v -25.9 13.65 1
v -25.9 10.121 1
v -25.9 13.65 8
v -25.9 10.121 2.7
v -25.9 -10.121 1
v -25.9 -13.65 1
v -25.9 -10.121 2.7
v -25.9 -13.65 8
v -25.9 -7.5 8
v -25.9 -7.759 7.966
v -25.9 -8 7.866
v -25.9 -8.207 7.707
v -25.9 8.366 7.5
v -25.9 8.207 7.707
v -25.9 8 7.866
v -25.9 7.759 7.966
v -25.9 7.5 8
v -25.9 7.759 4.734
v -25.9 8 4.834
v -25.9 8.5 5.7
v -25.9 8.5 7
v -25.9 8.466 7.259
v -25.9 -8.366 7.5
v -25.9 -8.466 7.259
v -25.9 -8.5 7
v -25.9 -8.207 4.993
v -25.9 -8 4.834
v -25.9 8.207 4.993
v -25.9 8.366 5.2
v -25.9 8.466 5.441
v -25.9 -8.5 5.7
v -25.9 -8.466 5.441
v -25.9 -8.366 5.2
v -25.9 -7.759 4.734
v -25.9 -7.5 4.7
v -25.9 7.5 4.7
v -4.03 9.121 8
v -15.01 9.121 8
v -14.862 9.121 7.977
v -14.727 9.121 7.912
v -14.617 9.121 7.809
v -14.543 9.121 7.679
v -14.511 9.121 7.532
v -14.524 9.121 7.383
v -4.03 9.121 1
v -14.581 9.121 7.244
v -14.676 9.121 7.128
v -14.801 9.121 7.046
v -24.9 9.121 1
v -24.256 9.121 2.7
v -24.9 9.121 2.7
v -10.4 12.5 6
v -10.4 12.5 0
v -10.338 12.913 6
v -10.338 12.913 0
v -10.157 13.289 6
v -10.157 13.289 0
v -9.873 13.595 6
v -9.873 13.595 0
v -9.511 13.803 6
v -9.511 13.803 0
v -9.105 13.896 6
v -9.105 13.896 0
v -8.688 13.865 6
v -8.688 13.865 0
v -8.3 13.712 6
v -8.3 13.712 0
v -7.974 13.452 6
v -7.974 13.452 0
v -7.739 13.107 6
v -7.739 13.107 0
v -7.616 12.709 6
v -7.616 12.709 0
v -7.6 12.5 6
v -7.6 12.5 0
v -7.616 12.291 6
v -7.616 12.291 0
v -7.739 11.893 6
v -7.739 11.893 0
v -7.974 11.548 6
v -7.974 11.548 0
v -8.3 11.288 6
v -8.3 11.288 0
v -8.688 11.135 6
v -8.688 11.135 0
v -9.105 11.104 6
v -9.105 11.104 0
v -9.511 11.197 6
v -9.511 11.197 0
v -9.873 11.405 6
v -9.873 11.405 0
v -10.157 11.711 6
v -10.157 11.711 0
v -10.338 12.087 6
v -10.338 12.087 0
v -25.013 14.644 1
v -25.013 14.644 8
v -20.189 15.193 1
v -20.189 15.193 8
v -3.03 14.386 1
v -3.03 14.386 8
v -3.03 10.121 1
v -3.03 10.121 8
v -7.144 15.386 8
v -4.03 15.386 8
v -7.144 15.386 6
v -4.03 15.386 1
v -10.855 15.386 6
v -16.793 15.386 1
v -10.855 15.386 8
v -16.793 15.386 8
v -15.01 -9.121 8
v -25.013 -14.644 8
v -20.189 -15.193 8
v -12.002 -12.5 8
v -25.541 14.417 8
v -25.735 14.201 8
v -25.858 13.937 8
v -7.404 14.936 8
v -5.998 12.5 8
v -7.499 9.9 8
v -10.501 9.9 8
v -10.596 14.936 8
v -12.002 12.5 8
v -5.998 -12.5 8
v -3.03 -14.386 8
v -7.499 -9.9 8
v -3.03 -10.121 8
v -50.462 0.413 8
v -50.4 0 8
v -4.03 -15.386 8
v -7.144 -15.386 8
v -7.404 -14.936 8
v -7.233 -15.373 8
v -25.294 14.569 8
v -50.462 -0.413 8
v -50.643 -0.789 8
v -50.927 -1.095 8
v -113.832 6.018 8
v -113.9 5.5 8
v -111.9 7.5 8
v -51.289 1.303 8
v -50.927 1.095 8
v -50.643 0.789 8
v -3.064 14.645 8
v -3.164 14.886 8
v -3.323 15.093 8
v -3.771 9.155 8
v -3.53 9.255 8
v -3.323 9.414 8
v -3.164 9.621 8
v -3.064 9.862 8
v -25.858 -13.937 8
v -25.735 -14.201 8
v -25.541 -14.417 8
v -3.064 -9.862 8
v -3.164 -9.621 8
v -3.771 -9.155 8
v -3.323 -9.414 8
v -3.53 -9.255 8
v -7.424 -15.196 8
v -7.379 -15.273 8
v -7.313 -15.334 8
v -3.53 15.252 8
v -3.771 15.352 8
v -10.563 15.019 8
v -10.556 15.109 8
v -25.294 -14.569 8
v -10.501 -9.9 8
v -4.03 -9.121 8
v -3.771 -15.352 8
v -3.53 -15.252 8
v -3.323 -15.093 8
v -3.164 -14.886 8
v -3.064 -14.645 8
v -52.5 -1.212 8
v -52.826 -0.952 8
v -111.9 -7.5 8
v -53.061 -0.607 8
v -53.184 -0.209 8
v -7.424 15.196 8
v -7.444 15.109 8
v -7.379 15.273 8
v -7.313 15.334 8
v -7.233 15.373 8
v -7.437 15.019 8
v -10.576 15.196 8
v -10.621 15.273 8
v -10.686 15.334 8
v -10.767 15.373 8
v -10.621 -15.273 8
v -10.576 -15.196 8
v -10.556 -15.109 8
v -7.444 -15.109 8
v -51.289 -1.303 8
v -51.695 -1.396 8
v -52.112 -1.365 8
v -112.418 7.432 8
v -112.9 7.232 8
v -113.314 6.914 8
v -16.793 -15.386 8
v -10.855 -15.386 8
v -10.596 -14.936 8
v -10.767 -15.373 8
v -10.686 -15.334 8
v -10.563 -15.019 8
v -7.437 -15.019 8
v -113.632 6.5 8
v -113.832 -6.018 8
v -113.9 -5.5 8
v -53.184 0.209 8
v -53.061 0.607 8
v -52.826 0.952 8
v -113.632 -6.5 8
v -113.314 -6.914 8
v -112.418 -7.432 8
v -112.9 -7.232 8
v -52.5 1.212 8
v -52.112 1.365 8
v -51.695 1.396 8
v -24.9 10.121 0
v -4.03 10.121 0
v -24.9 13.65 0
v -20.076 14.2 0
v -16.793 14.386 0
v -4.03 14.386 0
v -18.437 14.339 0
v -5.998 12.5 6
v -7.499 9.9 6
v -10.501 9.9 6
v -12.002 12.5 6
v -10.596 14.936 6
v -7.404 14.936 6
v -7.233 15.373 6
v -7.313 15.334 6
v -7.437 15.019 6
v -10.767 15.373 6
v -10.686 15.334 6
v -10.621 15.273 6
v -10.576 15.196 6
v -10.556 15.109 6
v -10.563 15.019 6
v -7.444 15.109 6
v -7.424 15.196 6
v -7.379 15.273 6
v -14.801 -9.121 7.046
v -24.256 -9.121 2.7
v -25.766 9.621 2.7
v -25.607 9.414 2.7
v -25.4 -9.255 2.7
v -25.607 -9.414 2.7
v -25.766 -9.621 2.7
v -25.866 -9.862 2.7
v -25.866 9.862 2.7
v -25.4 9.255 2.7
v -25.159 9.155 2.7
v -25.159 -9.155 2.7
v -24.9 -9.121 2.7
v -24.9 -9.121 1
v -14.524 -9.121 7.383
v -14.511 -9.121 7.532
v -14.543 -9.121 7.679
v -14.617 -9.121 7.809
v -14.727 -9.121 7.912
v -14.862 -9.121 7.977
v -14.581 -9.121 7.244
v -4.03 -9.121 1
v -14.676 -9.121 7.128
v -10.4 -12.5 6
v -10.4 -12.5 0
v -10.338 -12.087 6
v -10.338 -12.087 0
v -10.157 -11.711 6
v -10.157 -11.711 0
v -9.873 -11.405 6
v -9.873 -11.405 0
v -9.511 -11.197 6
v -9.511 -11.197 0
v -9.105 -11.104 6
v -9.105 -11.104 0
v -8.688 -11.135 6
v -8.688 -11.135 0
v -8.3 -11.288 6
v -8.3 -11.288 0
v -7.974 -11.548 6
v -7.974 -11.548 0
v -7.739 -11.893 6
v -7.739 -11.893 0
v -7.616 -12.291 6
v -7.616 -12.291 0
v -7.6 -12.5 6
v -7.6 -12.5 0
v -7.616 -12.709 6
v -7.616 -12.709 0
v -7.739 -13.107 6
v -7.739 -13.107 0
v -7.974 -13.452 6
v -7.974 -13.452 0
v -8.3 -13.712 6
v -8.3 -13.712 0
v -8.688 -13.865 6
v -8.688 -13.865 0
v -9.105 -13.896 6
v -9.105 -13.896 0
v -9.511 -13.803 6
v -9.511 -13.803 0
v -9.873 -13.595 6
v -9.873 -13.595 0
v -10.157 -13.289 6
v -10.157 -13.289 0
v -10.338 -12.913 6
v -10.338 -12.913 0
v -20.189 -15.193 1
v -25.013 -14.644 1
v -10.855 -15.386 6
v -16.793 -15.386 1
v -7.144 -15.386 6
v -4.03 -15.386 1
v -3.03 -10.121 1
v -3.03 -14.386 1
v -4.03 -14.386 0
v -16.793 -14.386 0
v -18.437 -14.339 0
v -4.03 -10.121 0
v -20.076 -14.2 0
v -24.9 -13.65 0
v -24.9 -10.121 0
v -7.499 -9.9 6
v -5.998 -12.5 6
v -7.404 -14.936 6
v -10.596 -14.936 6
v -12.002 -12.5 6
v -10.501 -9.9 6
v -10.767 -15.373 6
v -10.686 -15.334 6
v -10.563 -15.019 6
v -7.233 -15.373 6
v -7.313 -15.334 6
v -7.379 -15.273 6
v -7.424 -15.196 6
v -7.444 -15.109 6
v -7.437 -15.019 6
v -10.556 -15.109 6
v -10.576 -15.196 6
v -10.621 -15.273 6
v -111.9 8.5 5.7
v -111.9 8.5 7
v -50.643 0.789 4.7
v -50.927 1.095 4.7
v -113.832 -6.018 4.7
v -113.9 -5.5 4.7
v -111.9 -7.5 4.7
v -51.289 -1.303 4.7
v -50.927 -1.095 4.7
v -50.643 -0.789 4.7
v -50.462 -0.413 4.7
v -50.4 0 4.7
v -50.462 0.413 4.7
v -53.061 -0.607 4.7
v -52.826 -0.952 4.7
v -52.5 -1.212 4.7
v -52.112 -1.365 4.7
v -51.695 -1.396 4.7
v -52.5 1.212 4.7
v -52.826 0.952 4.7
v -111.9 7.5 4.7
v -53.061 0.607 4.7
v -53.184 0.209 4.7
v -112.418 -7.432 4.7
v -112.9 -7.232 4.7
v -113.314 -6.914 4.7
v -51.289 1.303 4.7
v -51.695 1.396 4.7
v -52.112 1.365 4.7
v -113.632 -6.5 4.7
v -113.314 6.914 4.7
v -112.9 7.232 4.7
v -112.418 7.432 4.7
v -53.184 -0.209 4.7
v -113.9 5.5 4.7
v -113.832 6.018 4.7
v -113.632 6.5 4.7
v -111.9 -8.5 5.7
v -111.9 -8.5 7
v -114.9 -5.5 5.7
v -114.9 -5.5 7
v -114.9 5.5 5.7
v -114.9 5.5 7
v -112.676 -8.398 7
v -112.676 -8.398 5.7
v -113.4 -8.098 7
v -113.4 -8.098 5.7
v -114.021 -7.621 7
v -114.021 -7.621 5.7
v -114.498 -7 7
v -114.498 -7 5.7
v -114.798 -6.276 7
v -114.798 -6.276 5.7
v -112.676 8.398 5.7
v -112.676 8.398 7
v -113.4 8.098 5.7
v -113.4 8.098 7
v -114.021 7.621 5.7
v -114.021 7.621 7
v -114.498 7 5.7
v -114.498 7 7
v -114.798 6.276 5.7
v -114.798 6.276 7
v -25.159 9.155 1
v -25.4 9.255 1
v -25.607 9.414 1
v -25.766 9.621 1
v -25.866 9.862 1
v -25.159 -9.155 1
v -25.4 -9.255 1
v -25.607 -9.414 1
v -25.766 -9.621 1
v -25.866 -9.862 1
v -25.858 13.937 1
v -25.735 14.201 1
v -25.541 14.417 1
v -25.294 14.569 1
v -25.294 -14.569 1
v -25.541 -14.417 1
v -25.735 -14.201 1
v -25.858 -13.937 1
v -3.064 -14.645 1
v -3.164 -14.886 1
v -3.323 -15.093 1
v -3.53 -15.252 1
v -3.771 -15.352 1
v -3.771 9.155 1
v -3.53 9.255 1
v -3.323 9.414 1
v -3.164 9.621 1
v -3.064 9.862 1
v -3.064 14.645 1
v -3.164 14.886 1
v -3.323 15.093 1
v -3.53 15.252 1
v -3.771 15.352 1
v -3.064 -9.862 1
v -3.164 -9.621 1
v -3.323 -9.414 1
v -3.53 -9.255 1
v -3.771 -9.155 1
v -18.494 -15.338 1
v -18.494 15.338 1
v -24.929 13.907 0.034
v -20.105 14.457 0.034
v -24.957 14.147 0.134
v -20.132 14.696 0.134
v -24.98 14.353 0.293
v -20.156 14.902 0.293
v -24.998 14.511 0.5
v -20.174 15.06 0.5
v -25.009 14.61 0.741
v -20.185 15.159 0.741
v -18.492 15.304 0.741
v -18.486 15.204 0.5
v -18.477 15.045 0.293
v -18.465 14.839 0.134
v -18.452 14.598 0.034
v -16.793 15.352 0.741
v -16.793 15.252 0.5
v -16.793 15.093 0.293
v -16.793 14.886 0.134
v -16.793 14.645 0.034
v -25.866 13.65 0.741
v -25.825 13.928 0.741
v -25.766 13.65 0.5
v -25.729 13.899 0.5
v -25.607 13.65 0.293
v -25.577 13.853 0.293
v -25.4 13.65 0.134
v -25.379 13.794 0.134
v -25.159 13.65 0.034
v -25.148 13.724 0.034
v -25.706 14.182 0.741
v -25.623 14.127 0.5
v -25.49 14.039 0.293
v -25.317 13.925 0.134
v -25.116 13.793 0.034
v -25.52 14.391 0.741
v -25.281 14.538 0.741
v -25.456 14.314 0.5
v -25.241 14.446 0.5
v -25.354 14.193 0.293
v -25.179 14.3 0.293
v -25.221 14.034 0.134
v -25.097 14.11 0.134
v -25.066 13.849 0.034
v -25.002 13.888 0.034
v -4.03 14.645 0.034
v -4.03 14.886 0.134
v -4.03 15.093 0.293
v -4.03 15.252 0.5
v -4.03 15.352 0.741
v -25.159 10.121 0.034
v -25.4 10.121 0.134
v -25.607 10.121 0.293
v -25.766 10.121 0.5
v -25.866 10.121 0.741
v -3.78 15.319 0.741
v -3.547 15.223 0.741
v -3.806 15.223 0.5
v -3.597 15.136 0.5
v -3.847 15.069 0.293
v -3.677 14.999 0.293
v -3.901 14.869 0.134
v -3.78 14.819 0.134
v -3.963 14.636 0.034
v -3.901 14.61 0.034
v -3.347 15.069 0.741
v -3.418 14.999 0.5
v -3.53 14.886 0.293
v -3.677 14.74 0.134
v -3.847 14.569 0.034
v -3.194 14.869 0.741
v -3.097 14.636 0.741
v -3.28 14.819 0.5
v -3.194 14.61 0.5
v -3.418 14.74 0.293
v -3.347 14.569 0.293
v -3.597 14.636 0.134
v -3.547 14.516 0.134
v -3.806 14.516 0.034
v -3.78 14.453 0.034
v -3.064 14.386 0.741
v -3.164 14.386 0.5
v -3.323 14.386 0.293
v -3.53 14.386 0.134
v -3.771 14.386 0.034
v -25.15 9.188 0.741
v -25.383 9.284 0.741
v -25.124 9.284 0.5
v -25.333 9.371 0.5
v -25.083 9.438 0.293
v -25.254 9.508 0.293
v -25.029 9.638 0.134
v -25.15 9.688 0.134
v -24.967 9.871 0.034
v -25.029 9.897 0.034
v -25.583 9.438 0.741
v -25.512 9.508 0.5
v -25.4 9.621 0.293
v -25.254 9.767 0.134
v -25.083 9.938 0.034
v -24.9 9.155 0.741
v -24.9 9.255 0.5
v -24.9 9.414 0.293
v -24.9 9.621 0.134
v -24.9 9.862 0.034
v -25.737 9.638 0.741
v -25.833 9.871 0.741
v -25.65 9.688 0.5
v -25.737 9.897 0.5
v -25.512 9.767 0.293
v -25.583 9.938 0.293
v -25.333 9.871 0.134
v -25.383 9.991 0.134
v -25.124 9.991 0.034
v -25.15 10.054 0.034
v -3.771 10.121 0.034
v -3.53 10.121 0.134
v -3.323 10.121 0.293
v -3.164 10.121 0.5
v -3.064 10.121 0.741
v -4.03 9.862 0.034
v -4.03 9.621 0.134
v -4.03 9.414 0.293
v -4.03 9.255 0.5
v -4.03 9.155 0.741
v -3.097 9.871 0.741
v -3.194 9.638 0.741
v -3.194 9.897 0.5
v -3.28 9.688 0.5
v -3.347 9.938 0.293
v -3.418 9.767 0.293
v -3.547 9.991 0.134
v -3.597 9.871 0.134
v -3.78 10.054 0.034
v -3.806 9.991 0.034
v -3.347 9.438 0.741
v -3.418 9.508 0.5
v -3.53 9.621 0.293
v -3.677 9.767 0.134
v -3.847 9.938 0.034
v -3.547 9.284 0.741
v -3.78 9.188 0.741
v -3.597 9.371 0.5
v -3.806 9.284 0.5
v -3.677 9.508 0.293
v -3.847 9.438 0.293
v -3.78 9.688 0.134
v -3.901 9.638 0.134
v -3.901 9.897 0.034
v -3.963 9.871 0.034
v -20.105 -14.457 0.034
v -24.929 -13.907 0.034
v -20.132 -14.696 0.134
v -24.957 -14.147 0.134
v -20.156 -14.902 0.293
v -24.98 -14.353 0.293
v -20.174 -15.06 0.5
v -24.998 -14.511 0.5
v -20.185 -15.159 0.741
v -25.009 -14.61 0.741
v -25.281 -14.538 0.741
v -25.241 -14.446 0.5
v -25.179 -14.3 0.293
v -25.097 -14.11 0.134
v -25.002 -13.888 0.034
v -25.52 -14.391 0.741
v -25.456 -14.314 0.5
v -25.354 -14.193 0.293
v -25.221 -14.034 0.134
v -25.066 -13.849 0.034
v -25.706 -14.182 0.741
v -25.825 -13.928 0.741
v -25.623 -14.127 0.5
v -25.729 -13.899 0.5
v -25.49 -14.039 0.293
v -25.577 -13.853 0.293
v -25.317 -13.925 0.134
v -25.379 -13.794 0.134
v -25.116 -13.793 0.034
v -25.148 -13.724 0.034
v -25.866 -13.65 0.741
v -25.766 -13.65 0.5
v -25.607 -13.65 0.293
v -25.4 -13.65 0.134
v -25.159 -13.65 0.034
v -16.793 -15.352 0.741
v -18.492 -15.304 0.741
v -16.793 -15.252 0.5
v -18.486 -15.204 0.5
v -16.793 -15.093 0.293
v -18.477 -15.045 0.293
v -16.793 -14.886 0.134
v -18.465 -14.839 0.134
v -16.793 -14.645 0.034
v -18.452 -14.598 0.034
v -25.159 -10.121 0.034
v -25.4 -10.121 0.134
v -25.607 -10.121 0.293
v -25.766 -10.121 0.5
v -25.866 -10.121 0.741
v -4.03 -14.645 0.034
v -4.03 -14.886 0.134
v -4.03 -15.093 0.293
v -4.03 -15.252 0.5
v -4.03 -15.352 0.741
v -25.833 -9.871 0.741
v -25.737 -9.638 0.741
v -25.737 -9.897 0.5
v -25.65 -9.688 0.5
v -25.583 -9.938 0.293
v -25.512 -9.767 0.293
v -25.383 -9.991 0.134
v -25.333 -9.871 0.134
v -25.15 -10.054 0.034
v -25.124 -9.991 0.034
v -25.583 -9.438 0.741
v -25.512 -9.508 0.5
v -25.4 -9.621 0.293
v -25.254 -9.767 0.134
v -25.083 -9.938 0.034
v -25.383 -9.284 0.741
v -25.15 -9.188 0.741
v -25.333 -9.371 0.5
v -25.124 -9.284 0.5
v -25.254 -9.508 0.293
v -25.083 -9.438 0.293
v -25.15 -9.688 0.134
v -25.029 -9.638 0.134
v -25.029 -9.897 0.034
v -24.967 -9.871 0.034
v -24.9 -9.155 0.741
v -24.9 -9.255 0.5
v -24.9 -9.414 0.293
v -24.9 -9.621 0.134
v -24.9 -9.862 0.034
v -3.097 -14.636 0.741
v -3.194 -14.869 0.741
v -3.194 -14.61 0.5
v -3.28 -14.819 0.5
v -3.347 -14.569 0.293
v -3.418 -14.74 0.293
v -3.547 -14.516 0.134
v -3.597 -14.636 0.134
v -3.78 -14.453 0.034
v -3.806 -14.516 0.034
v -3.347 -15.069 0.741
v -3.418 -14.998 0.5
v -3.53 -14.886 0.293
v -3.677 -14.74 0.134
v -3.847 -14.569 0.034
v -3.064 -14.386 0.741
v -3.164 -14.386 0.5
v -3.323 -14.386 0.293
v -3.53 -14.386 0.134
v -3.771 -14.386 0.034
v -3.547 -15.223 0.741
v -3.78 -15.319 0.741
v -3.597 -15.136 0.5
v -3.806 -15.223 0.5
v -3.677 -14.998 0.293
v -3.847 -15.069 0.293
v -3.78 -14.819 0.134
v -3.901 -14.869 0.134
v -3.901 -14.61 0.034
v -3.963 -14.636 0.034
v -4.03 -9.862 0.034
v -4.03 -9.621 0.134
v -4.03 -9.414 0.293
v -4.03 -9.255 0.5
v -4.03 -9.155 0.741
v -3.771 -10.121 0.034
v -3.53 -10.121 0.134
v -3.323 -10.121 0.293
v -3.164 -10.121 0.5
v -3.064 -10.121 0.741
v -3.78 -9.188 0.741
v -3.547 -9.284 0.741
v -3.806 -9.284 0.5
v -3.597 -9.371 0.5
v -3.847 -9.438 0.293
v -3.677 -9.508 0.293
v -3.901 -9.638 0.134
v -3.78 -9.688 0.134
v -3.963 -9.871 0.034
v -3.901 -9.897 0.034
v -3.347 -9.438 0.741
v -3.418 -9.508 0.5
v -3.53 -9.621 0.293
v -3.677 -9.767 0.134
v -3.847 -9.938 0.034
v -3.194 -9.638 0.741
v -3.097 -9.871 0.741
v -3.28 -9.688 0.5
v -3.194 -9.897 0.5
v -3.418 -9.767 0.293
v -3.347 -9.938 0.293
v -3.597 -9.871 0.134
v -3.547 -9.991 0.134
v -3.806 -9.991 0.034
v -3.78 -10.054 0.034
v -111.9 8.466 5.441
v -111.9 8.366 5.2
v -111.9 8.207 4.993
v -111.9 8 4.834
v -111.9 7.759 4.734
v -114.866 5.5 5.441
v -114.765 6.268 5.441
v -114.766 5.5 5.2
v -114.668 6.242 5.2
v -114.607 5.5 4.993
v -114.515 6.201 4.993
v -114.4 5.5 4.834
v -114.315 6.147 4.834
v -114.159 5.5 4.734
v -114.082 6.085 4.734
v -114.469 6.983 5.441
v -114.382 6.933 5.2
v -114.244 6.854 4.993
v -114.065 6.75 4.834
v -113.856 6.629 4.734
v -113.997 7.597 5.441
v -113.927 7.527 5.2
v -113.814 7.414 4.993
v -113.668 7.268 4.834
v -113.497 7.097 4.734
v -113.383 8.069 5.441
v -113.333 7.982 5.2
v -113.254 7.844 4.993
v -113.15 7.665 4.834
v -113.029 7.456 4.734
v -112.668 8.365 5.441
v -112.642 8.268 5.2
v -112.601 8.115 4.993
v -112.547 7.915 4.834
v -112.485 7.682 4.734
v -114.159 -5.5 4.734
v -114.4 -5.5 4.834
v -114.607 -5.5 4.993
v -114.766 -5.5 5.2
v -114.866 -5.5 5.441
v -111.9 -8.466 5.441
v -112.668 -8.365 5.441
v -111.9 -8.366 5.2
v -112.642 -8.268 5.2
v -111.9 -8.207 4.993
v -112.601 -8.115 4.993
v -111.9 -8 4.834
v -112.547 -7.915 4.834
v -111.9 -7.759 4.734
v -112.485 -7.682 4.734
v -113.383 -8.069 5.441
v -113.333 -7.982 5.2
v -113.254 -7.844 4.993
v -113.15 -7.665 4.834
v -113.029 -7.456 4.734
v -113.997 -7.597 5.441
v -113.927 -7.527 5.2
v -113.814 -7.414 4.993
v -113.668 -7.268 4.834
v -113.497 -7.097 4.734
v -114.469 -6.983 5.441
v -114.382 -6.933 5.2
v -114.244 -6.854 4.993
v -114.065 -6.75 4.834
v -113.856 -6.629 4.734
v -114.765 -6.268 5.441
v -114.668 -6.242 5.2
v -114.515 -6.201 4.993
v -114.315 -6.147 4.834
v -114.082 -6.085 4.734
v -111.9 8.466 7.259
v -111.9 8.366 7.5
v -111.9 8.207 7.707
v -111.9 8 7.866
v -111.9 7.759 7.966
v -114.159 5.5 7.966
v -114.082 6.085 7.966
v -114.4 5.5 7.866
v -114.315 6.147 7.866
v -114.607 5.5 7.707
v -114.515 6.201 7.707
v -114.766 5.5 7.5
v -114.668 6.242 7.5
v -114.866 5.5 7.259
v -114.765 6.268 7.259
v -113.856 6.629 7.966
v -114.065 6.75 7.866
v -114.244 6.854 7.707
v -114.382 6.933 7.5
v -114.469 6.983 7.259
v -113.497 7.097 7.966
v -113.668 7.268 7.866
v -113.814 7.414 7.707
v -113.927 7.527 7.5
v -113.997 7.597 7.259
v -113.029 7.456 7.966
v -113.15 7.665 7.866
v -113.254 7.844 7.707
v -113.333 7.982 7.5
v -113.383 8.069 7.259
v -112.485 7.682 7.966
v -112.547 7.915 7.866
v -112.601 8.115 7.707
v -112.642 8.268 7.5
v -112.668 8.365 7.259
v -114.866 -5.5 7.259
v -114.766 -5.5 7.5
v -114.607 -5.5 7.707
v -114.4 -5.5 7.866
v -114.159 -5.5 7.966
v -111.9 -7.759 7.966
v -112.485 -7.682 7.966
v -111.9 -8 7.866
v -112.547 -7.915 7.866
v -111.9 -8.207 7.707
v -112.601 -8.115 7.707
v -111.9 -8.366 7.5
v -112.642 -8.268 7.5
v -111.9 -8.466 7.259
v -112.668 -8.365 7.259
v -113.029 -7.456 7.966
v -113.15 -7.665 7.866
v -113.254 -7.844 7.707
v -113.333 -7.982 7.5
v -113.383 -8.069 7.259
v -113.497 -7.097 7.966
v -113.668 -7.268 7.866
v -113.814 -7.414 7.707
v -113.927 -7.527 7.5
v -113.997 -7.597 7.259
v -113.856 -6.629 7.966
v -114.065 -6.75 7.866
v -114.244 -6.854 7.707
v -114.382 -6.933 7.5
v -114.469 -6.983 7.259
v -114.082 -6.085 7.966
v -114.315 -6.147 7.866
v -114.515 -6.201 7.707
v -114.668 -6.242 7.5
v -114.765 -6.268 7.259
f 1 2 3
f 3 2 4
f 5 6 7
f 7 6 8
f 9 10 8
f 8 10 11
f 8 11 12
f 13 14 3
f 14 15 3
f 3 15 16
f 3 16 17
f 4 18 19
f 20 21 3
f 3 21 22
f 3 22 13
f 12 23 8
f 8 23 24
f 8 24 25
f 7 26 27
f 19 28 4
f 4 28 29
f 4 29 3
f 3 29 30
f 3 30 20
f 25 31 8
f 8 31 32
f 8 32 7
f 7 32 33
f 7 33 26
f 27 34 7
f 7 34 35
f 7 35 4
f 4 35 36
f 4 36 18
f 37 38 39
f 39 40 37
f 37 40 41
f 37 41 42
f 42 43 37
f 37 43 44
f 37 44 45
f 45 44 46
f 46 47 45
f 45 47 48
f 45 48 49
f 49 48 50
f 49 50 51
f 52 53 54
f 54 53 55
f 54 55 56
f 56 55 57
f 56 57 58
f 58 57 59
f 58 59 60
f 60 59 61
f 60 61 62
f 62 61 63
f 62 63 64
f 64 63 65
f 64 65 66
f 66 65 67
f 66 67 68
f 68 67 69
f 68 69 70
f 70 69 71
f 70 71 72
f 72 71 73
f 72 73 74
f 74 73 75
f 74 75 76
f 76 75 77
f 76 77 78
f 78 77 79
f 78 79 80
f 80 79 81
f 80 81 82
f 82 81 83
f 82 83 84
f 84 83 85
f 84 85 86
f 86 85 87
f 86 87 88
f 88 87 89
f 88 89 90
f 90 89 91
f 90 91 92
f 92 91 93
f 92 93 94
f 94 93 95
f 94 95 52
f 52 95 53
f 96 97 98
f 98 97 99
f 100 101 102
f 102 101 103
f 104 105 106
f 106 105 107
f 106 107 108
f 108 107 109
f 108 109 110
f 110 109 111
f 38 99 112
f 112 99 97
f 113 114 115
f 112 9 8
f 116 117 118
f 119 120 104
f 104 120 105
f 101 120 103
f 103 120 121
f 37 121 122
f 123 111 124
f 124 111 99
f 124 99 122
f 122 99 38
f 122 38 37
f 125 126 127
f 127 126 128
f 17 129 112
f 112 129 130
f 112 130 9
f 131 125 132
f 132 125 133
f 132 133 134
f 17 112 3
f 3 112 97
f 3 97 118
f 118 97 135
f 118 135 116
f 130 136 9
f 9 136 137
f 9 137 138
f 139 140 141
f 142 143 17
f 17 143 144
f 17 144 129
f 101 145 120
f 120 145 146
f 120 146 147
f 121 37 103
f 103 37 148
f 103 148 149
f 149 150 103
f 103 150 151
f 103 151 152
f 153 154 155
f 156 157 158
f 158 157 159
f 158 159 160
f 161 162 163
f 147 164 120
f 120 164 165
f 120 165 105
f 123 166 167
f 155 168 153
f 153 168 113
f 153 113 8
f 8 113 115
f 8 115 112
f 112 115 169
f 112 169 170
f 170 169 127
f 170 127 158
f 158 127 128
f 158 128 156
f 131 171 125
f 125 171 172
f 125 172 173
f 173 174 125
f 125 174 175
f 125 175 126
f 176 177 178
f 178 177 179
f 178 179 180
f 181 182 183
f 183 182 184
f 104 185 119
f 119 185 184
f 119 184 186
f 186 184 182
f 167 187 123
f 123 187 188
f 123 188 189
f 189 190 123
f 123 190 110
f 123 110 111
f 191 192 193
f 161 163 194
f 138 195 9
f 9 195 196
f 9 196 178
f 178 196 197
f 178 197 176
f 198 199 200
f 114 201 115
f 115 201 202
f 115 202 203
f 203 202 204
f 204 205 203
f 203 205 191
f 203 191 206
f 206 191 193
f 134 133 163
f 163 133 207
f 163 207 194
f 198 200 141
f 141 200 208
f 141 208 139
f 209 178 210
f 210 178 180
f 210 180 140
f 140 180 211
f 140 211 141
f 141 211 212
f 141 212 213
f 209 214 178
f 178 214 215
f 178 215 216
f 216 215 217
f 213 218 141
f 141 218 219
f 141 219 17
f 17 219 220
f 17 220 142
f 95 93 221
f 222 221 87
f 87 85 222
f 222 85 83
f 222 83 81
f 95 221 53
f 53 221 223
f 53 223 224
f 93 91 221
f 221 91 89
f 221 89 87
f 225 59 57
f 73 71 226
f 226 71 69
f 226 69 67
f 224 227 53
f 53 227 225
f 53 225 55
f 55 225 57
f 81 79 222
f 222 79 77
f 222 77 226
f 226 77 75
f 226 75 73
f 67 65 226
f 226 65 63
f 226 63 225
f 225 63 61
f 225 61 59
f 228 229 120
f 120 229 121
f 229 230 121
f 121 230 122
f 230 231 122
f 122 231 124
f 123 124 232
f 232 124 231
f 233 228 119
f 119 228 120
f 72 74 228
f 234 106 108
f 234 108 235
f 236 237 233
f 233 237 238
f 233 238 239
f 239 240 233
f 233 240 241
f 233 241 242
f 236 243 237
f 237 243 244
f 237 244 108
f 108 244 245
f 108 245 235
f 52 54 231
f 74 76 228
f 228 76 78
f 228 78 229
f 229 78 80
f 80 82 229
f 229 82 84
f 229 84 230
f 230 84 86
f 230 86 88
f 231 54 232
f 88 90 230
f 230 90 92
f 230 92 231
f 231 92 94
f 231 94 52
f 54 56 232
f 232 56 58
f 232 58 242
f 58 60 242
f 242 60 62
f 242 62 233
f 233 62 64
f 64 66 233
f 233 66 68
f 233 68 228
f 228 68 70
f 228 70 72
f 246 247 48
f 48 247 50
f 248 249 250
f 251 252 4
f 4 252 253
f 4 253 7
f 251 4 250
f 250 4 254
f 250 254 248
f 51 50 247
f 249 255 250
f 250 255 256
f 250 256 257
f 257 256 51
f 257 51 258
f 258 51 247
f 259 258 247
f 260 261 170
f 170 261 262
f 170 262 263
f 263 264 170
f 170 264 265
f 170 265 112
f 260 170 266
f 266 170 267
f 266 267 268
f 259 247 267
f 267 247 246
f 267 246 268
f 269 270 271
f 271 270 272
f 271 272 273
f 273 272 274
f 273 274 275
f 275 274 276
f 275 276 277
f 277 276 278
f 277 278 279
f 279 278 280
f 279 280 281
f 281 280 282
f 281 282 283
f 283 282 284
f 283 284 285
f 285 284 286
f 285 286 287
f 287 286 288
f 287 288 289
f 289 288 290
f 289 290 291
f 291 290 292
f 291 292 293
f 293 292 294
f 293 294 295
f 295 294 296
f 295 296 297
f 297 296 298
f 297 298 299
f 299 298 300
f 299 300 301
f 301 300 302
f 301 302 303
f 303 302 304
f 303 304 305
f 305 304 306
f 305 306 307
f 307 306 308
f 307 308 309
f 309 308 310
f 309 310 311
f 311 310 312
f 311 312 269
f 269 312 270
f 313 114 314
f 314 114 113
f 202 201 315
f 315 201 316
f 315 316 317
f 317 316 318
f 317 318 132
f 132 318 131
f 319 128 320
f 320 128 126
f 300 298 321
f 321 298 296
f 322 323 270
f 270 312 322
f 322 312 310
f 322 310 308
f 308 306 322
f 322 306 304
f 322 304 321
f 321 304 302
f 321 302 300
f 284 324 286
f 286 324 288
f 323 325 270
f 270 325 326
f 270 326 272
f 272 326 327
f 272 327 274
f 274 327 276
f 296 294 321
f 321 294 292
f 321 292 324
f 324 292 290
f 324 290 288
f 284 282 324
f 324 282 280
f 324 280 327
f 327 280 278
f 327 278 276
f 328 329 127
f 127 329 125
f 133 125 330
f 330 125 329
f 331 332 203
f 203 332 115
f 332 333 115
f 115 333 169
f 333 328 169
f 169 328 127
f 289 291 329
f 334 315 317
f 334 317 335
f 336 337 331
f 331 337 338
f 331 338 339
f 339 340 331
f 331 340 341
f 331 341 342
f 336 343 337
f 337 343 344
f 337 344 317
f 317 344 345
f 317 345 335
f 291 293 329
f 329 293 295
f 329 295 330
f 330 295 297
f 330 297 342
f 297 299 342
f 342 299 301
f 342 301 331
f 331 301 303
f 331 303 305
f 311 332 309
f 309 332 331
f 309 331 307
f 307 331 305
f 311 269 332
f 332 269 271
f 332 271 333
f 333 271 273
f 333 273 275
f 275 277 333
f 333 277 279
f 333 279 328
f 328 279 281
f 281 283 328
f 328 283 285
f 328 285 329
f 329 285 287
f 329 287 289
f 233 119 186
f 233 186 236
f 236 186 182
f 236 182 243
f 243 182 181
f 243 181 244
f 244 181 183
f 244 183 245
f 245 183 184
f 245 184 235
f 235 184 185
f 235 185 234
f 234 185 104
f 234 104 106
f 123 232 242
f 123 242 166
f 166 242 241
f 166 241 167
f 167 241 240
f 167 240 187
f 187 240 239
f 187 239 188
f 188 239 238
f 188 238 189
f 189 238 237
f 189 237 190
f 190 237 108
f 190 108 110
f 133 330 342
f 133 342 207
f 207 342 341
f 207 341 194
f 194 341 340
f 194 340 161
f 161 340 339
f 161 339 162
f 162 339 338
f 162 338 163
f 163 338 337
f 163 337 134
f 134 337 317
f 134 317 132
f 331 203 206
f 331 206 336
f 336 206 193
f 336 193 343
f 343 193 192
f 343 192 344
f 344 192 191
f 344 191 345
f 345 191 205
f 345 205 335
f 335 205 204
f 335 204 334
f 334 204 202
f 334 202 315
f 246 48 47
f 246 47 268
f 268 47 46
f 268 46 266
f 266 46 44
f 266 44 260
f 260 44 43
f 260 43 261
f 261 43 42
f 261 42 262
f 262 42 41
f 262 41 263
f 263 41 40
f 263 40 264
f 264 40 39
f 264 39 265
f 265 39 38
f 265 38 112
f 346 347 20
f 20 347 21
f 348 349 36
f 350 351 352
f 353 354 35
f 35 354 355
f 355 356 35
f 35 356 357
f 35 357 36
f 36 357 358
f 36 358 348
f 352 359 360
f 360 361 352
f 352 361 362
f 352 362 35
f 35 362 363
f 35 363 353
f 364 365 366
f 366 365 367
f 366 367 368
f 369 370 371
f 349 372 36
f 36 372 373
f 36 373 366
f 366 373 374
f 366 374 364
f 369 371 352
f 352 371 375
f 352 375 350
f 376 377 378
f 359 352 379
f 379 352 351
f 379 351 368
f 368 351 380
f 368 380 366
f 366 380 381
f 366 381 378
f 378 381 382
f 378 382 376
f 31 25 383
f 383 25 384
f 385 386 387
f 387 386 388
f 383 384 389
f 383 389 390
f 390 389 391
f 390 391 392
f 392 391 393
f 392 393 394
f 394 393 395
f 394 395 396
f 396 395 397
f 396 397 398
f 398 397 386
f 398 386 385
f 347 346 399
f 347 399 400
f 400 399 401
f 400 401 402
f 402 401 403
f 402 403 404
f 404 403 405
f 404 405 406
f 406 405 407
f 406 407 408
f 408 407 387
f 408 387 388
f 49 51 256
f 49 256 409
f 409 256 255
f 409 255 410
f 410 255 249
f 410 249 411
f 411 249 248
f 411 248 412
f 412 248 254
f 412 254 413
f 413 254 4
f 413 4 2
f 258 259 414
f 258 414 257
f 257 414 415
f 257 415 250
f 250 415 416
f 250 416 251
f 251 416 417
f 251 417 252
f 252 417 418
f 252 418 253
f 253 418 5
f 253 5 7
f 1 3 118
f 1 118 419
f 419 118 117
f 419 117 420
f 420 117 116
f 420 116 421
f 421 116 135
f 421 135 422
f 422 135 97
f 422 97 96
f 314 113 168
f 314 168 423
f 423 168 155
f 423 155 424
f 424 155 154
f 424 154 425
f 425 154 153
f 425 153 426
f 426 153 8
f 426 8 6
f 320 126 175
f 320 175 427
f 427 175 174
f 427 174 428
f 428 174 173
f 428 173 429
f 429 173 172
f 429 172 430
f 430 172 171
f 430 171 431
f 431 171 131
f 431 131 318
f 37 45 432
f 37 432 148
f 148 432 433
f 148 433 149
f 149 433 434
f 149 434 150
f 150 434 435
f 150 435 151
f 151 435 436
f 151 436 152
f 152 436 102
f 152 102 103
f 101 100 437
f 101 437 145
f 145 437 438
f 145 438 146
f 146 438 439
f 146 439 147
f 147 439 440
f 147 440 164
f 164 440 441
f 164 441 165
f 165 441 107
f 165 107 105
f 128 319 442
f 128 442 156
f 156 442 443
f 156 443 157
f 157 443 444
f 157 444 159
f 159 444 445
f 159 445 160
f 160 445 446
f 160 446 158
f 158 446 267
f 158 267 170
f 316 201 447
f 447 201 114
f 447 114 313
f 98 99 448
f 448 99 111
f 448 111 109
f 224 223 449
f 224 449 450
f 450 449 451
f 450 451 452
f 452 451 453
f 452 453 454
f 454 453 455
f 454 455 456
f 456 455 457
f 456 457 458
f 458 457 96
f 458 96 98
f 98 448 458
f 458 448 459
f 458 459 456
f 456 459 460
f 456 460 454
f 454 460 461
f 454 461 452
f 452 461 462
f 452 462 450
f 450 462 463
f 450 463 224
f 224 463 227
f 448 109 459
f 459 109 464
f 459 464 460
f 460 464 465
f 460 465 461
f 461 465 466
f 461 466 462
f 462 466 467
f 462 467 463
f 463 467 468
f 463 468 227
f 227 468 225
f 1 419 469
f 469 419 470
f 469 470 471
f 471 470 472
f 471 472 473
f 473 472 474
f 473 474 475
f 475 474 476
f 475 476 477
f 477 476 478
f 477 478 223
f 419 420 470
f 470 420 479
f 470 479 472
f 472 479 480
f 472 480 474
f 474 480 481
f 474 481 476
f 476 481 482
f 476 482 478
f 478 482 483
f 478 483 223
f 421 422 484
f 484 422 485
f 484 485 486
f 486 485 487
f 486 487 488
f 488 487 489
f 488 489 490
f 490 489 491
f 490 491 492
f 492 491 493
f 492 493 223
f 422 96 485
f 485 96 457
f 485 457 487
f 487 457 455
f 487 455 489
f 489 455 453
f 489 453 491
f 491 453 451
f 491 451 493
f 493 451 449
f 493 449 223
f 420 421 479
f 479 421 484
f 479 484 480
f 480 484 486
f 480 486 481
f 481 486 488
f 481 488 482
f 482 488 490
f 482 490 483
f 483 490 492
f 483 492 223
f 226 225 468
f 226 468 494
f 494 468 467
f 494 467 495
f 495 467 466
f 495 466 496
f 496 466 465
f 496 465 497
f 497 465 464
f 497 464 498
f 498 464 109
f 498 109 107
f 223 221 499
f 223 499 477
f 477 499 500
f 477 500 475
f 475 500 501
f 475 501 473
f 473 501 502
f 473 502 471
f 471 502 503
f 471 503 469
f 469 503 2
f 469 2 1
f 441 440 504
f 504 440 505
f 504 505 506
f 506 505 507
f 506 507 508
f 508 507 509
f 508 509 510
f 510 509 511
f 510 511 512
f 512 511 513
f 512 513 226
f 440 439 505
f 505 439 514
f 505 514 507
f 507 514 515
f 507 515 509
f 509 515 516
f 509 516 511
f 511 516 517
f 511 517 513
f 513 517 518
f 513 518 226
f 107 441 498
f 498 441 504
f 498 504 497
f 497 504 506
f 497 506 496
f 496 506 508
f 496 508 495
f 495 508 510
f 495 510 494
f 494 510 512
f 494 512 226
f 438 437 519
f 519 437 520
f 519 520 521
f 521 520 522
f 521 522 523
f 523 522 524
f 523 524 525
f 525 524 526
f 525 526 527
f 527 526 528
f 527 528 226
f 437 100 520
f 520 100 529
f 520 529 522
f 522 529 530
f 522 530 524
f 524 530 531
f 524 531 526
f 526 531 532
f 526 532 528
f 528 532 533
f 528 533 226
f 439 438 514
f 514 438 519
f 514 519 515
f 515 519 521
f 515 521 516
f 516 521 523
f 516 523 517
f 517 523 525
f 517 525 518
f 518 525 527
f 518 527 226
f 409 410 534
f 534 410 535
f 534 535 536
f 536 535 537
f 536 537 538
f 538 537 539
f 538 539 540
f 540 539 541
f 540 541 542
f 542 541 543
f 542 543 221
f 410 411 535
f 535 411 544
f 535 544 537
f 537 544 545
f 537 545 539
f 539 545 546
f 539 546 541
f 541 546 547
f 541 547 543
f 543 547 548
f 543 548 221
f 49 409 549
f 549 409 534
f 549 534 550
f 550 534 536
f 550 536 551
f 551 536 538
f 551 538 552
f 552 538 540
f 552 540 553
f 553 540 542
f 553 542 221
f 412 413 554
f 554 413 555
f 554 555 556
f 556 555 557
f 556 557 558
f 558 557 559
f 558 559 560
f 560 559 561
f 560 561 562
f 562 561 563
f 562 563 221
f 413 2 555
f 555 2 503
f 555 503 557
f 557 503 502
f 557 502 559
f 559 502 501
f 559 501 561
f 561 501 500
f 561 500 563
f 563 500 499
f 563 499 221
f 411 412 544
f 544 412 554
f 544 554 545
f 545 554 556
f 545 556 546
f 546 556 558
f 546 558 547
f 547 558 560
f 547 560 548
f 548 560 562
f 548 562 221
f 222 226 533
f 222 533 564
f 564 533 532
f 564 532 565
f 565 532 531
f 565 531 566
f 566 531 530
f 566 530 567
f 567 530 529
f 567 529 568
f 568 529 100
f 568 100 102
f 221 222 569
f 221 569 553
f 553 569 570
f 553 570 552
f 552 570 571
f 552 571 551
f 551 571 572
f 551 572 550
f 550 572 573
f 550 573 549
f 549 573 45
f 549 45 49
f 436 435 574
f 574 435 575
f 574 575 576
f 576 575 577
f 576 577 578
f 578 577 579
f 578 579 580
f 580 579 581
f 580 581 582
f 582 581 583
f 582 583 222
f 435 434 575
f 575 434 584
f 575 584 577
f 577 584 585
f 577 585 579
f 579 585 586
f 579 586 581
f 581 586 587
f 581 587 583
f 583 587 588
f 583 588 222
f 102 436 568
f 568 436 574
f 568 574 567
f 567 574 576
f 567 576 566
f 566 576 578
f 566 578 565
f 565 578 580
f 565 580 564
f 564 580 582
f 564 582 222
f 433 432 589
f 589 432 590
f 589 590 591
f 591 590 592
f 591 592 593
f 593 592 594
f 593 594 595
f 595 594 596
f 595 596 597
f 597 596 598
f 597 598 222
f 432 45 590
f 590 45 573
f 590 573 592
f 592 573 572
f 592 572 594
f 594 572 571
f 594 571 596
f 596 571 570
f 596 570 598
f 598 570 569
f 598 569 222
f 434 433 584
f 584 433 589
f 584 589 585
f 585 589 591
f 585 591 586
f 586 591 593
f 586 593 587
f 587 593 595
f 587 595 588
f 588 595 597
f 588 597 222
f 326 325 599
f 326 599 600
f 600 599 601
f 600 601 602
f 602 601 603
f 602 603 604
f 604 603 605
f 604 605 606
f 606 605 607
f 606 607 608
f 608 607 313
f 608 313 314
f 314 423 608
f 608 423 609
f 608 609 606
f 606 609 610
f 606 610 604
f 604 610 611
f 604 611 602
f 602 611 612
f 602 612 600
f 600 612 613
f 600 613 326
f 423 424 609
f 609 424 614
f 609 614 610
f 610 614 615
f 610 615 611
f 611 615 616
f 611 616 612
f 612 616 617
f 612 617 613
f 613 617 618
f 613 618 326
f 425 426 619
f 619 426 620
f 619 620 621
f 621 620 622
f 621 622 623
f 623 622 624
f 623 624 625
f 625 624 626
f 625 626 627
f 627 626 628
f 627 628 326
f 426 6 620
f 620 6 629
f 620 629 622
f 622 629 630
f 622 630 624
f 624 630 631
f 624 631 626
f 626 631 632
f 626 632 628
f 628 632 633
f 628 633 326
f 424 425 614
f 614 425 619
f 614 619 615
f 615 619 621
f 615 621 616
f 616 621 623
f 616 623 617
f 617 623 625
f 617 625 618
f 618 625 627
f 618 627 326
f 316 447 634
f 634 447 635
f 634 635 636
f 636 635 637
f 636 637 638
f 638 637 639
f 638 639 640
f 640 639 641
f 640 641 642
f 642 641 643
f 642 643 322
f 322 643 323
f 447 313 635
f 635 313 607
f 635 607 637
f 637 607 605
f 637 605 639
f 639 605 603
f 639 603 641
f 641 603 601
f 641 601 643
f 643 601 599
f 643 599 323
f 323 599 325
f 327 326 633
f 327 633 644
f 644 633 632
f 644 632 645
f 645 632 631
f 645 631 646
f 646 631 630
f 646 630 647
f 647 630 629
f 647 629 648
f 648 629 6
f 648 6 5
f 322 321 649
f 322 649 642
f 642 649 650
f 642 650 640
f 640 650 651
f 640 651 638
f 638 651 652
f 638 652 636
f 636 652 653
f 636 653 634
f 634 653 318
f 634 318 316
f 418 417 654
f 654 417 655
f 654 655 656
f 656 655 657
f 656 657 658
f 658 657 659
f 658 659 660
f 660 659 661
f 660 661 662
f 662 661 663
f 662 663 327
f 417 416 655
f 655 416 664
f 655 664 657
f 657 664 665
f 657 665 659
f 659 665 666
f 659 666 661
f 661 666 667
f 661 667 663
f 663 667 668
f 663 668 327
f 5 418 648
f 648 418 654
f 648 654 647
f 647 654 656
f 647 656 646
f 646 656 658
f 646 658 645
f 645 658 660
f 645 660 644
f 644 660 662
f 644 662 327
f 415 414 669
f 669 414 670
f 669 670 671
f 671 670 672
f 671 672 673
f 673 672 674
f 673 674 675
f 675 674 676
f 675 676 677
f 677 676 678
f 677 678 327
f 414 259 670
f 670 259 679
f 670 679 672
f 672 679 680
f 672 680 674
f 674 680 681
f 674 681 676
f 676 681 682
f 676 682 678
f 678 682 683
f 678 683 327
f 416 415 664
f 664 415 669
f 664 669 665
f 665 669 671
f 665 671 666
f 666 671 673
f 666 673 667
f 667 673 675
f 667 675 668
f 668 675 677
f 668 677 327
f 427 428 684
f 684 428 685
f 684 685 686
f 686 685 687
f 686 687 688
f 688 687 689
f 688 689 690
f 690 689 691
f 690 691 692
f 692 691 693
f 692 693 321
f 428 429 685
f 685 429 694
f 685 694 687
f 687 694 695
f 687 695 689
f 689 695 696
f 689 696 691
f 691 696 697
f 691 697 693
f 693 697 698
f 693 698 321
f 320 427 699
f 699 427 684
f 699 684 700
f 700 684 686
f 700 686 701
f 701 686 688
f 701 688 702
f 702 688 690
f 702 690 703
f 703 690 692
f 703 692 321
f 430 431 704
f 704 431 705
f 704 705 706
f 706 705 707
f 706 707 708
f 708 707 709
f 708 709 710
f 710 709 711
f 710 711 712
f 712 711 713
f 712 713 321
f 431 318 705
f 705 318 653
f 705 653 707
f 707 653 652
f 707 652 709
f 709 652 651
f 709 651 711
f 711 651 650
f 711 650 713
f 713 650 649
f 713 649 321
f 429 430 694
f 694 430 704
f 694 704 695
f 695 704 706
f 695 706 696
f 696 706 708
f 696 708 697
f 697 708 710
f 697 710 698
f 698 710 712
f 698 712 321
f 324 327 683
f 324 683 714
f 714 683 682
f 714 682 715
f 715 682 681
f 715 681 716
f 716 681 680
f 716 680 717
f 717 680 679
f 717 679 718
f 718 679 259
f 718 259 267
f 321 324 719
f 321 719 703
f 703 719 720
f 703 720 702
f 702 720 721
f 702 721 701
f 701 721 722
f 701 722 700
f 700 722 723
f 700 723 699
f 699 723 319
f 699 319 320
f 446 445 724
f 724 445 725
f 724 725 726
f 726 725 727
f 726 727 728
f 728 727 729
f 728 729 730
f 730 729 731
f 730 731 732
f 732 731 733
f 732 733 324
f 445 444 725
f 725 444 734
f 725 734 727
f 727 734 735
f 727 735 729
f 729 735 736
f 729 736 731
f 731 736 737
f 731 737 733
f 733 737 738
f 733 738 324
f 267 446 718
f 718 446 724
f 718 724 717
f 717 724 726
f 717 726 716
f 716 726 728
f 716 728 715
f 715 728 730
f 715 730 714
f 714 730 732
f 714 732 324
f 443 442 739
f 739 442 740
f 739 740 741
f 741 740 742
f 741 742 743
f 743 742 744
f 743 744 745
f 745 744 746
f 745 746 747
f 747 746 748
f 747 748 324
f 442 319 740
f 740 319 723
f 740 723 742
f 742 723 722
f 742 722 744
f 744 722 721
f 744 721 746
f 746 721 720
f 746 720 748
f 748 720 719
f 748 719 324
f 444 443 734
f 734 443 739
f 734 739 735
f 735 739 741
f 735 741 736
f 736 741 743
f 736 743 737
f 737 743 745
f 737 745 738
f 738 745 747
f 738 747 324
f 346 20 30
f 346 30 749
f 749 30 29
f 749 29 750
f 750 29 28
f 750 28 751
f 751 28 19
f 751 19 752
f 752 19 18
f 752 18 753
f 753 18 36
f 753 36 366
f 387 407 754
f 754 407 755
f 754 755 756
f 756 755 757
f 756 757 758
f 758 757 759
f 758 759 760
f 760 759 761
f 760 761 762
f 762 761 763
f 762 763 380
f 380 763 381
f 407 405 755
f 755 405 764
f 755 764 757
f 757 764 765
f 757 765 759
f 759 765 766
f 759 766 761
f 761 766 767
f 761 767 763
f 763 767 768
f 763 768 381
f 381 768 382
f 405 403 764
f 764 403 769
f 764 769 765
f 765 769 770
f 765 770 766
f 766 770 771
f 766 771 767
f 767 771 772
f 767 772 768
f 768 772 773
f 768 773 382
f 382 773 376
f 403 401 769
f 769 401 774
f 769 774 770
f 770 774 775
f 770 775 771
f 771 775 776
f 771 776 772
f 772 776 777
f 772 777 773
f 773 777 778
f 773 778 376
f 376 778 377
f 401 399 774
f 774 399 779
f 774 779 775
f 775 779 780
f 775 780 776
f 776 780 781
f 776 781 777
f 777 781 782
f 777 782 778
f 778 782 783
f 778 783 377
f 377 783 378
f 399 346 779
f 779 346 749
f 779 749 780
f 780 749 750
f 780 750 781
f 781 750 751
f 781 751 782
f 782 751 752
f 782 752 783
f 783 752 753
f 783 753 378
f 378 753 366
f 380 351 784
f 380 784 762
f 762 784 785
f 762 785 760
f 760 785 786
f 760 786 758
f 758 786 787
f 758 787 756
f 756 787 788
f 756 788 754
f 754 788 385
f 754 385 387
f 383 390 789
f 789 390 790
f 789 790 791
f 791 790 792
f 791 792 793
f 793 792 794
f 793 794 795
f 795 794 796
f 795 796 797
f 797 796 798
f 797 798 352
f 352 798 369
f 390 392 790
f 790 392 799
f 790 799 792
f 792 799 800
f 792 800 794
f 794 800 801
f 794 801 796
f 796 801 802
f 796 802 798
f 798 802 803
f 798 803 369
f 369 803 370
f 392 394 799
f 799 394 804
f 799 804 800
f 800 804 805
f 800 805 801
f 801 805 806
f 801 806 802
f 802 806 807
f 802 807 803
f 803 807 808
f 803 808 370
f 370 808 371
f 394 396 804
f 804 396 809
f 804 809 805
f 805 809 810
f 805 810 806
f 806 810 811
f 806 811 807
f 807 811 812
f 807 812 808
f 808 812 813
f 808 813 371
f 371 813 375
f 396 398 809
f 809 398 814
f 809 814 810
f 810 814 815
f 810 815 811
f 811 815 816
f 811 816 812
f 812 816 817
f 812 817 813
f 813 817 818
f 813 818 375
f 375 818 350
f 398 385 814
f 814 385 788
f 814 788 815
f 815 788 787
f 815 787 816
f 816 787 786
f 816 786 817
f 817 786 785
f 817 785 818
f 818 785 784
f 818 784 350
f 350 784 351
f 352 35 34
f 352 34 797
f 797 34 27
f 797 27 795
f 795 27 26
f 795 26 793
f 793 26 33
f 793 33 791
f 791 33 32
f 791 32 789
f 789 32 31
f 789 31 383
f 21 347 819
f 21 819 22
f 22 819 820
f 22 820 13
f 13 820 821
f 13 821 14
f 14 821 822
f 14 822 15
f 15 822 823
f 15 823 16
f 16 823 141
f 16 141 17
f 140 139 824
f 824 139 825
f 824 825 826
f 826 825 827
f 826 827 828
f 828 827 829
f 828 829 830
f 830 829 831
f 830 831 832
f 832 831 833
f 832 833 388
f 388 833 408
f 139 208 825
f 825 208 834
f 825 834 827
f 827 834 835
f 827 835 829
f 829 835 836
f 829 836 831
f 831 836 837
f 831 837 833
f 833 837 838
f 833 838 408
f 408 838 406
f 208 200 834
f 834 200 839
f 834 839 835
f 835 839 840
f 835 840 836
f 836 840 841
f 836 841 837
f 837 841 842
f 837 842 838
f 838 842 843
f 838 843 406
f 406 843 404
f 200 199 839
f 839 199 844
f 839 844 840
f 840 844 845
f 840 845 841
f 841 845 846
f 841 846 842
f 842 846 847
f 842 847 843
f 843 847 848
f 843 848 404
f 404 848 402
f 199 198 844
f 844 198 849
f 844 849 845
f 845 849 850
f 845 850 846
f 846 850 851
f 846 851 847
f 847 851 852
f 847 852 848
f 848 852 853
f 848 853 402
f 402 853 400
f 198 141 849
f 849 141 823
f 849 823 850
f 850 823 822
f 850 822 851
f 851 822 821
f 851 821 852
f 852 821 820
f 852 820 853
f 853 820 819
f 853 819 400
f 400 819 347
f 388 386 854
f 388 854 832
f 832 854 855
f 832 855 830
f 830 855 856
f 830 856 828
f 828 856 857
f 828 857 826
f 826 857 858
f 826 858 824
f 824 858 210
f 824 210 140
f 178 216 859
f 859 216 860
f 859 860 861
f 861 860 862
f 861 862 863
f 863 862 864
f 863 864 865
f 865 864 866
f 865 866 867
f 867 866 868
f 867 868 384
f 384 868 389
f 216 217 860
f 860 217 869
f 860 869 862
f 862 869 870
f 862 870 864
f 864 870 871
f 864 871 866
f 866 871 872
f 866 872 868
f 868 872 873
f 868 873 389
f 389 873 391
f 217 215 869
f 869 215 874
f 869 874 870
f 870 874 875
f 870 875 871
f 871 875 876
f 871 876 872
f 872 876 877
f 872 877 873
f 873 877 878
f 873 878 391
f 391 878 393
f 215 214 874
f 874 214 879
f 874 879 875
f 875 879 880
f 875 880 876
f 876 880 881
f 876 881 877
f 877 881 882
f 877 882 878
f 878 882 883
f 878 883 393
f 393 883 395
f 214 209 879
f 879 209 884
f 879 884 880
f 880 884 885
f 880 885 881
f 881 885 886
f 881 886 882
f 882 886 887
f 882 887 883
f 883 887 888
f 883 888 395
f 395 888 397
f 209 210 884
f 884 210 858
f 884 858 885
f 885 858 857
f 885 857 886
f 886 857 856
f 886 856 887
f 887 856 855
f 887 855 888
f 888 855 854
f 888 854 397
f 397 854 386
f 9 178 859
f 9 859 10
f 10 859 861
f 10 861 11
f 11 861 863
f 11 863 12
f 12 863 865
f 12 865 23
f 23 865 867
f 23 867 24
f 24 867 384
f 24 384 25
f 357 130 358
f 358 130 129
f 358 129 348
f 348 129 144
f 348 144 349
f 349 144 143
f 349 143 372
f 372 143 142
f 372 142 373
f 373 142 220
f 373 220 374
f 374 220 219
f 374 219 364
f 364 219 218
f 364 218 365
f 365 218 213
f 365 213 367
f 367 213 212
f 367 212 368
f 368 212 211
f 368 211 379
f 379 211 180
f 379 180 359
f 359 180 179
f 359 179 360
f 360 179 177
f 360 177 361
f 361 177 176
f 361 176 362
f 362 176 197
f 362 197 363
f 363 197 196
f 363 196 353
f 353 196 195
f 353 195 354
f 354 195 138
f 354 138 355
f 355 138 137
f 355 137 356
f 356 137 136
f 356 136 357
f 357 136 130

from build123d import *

# Parameters (mm, degrees)
SKETCH1_R             = 1.4000000000000001
BOSS_EXTRUDE1_DEPTH   = 8
SKETCH1_R_2           = 1.4000001329680465
BOSS_EXTRUDE1_2_DEPTH = 8
CUT_EXTRUDE1_DEPTH    = 2
BOSS_EXTRUDE2_REACH   = 38.543
FILLET1_R             = 0.3
FILLET2_R             = 0.5
SKETCH4_W             = 3.300000288709998
SKETCH4_H             = 17
BOSS_EXTRUDE3_DEPTH   = 89
FILLET3_R             = 3
FILLET4_R             = 1
FILLET5_R             = 30
FILLET6_R             = 1
FILLET7_R             = 1
SKETCH5_R             = 1.4000008127885915
CUT_EXTRUDE2_DEPTH    = 117.20130403381272


with BuildPart() as part:
    # Sketch1 → Boss-Extrude1 (new body)
    with BuildSketch(Plane.XY):
        Polygon((-3.0301585163921114, 15.386126765608788), (-18.49637259864768, 15.386126765608788), (-25.90000070631504, 14.542589808684392), (-25.90000070631504, 9.120777419209476), (-3.030158516392113, 9.12077741920948), align=None)
        with Locations((-8.999999881867154, 12.49999987202729)):
            Circle(SKETCH1_R, mode=Mode.SUBTRACT)
    extrude(amount=BOSS_EXTRUDE1_DEPTH)


with BuildPart() as body_2:
    # Sketch1 → Boss-Extrude1 2 (new body)
    with BuildSketch(Plane.XY):
        Polygon((-3.0301585163921114, -15.386126765608788), (-3.0301585163921114, -9.12077741920948), (-25.90000070631504, -9.12077741920948), (-25.90000070631504, -14.542589808684392), (-18.496372598647696, -15.386126765608788), align=None)
        with Locations((-8.999999825719202, -12.500000716819214)):
            Circle(SKETCH1_R_2, mode=Mode.SUBTRACT)
    extrude(amount=BOSS_EXTRUDE1_2_DEPTH)


with BuildPart() as cut_extrude1_tool:
    # Sketch2 → Cut-Extrude1 (new body)
    with BuildSketch(Plane.XY.offset(8)):
        Polygon((-5.997778482081098, 12.499999872027288), (-7.498889181974129, 15.099999872027293), (-8.281088680356937, 16.454809144881214), (-9.718911083377371, 16.454809144881214), (-10.501110581760184, 15.099999872027293), (-12.002221281653215, 12.499999872027287), (-10.501110581760186, 9.899999872027289), (-7.498889181974125, 9.899999872027289), align=None)
        Polygon((-7.498889125826173, -9.900000716819214), (-10.501110525612221, -9.900000716819216), (-12.002221225505249, -12.500000716819212), (-10.501110525612223, -15.100000716819206), (-9.468316266504699, -16.88885284735889), (-8.531683384933698, -16.888852847358898), (-7.498889125826177, -15.100000716819206), (-5.997778425933152, -12.500000716819208), align=None)
    extrude(amount=-CUT_EXTRUDE1_DEPTH)


with BuildPart() as part_1:
    add(part.part)

    # Cut-Extrude1: cut by cut_extrude1_tool
    add(cut_extrude1_tool.part, mode=Mode.SUBTRACT)


with BuildPart() as body_2_1:
    add(body_2.part)

    # Cut-Extrude1: cut by cut_extrude1_tool
    add(cut_extrude1_tool.part, mode=Mode.SUBTRACT)

    # Sketch3 → Boss-Extrude2 (add, up to next)
    with BuildSketch(Plane.XZ.offset(-9.12077741920948), mode=Mode.PRIVATE) as boss_extrude2_sk1:
        Polygon((-25.90000070631504, 8), (-25.90000070631504, 2.699999711290002), (-24.255957938355465, 2.6999997112900025), (-12.725226135105776, 8), (-18.496372598647696, 8), align=None)
    boss_extrude2_tool1 = extrude(boss_extrude2_sk1.sketch, amount=BOSS_EXTRUDE2_REACH, mode=Mode.PRIVATE) - body_2_1.part

    add(part_1.part)  # Boss-Extrude2 merges part
    add(boss_extrude2_tool1.solids().sort_by_distance((-21.447611, 9.120777, 6.037334))[0])

    # Fillet1
    fillet1_edges = [body_2_1.edges().sort_by_distance(p)[0] for p in [
        (-10.335915142728517, 15.386126765608788, 7),
        (-7.664084621005797, 15.386126765608788, 7),
        (-7.664084077117004, -15.386126765608788, 7),
        (-10.33591557432139, -15.386126765608788, 7),
    ]]
    fillet(fillet1_edges, radius=FILLET1_R)

    # Fillet2
    fillet2_edges = [body_2_1.edges().sort_by_distance(p)[0] for p in [
        (-12.725226135105776, 0, 8),
    ]]
    fillet(fillet2_edges, radius=FILLET2_R)

    # Sketch4 → Boss-Extrude3 (add)
    with BuildSketch(Plane.ZY.offset(25.90000070631504)):
        with Locations((6.349999855645001, 0)):
            Rectangle(SKETCH4_W, SKETCH4_H)
    extrude(amount=BOSS_EXTRUDE3_DEPTH)

    # Fillet3
    fillet3_edges = [body_2_1.edges().sort_by_distance(p)[0] for p in [
        (-114.90000070631504, 8.5, 6.349999855645001),
        (-114.90000070631504, -8.5, 6.349999855645001),
    ]]
    fillet(fillet3_edges, radius=FILLET3_R)

    # Fillet4
    fillet4_edges = [body_2_1.edges().sort_by_distance(p)[0] for p in [
        (-3.0301585163921114, 15.386126765608788, 4),
        (-3.0301585163921123, 9.12077741920948, 4),
        (-25.90000070631504, 14.542589808684392, 4),
        (-25.90000070631504, 9.120777419209476, 1.349999855645001),
        (-3.0301585163921114, -9.12077741920948, 4),
        (-25.90000070631504, -9.12077741920948, 1.349999855645001),
        (-25.90000070631504, -14.542589808684392, 4),
        (-3.0301585163921114, -15.386126765608788, 4),
    ]]
    fillet(fillet4_edges, radius=FILLET4_R)

    # Fillet5
    fillet5_edges = [body_2_1.edges().sort_by_distance(p)[0] for p in [
        (-18.49637259864768, 15.38612676560879, 4),
        (-18.496372598647696, -15.386126765608788, 4),
    ]]
    fillet(fillet5_edges, radius=FILLET5_R)

    # Fillet6
    fillet6_edges = [body_2_1.edges().sort_by_distance(p)[0] for p in [
        (-14.465079611353577, 9.120777419209478, 0),
        (-22.601074828066285, 14.918454973167087, 0),
        (-3.0301585163921114, 12.253452092409134, 0),
        (-25.90000070631504, 11.885416556829192, 0),
        (-3.323051735205564, 15.093233546795336, 0),
        (-3.3230517352055653, 9.413670638022932, 0),
        (-25.646058085143018, 14.315937356229982, 0),
        (-25.607107487501587, 9.413670638022928, 0),
        (-25.90000070631504, -11.885416556829192, 0),
        (-14.465079611353575, -9.12077741920948, 0),
        (-3.0301585163921114, -12.253452092409134, 0),
        (-10.411503745491025, -15.386126765608788, 0),
        (-3.323051735205564, -9.413670638022932, 0),
        (-3.323051735205564, -15.093233546795336, 0),
        (-25.646058085143018, -14.315937356229977, 0),
        (-25.607107487501587, -9.413670638022932, 0),
        (-22.601074828066285, -14.918454973167087, 0),
        (-18.493632770900625, -15.337876872709488, 0),
        (-10.411503745491025, 15.386126765608788, 0),
        (-18.493632770900625, 15.337876872709492, 0),
    ]]
    fillet(fillet6_edges, radius=FILLET6_R)

    # Fillet7
    fillet7_edges = [body_2_1.edges().sort_by_distance(p)[0] for p in [
        (-114.90000070631504, 1.78e-15, 8),
        (-114.90000070631504, 0, 4.699999711290002),
        (-68.90000070631504, 8.5, 8),
        (-68.90000070631504, -8.5, 8),
        (-114.02132104987469, 7.621320343559643, 8),
        (-114.02132104987469, -7.621320343559643, 8),
        (-68.90000070631504, -8.5, 4.699999711290002),
        (-68.90000070631504, 8.5, 4.699999711290002),
        (-114.02132104987469, 7.621320343559643, 4.699999711290002),
        (-114.02132104987469, -7.621320343559643, 4.699999711290002),
    ]]
    fillet(fillet7_edges, radius=FILLET7_R)

    # Sketch5 → Cut-Extrude2 (cut, through all)
    with BuildSketch(Plane.XY.offset(8)):
        with Locations((-51.80000095537239, -2.0194977255e-07)):
            Circle(SKETCH5_R)
    extrude(amount=-CUT_EXTRUDE2_DEPTH, mode=Mode.SUBTRACT)


solid = body_2_1.part
